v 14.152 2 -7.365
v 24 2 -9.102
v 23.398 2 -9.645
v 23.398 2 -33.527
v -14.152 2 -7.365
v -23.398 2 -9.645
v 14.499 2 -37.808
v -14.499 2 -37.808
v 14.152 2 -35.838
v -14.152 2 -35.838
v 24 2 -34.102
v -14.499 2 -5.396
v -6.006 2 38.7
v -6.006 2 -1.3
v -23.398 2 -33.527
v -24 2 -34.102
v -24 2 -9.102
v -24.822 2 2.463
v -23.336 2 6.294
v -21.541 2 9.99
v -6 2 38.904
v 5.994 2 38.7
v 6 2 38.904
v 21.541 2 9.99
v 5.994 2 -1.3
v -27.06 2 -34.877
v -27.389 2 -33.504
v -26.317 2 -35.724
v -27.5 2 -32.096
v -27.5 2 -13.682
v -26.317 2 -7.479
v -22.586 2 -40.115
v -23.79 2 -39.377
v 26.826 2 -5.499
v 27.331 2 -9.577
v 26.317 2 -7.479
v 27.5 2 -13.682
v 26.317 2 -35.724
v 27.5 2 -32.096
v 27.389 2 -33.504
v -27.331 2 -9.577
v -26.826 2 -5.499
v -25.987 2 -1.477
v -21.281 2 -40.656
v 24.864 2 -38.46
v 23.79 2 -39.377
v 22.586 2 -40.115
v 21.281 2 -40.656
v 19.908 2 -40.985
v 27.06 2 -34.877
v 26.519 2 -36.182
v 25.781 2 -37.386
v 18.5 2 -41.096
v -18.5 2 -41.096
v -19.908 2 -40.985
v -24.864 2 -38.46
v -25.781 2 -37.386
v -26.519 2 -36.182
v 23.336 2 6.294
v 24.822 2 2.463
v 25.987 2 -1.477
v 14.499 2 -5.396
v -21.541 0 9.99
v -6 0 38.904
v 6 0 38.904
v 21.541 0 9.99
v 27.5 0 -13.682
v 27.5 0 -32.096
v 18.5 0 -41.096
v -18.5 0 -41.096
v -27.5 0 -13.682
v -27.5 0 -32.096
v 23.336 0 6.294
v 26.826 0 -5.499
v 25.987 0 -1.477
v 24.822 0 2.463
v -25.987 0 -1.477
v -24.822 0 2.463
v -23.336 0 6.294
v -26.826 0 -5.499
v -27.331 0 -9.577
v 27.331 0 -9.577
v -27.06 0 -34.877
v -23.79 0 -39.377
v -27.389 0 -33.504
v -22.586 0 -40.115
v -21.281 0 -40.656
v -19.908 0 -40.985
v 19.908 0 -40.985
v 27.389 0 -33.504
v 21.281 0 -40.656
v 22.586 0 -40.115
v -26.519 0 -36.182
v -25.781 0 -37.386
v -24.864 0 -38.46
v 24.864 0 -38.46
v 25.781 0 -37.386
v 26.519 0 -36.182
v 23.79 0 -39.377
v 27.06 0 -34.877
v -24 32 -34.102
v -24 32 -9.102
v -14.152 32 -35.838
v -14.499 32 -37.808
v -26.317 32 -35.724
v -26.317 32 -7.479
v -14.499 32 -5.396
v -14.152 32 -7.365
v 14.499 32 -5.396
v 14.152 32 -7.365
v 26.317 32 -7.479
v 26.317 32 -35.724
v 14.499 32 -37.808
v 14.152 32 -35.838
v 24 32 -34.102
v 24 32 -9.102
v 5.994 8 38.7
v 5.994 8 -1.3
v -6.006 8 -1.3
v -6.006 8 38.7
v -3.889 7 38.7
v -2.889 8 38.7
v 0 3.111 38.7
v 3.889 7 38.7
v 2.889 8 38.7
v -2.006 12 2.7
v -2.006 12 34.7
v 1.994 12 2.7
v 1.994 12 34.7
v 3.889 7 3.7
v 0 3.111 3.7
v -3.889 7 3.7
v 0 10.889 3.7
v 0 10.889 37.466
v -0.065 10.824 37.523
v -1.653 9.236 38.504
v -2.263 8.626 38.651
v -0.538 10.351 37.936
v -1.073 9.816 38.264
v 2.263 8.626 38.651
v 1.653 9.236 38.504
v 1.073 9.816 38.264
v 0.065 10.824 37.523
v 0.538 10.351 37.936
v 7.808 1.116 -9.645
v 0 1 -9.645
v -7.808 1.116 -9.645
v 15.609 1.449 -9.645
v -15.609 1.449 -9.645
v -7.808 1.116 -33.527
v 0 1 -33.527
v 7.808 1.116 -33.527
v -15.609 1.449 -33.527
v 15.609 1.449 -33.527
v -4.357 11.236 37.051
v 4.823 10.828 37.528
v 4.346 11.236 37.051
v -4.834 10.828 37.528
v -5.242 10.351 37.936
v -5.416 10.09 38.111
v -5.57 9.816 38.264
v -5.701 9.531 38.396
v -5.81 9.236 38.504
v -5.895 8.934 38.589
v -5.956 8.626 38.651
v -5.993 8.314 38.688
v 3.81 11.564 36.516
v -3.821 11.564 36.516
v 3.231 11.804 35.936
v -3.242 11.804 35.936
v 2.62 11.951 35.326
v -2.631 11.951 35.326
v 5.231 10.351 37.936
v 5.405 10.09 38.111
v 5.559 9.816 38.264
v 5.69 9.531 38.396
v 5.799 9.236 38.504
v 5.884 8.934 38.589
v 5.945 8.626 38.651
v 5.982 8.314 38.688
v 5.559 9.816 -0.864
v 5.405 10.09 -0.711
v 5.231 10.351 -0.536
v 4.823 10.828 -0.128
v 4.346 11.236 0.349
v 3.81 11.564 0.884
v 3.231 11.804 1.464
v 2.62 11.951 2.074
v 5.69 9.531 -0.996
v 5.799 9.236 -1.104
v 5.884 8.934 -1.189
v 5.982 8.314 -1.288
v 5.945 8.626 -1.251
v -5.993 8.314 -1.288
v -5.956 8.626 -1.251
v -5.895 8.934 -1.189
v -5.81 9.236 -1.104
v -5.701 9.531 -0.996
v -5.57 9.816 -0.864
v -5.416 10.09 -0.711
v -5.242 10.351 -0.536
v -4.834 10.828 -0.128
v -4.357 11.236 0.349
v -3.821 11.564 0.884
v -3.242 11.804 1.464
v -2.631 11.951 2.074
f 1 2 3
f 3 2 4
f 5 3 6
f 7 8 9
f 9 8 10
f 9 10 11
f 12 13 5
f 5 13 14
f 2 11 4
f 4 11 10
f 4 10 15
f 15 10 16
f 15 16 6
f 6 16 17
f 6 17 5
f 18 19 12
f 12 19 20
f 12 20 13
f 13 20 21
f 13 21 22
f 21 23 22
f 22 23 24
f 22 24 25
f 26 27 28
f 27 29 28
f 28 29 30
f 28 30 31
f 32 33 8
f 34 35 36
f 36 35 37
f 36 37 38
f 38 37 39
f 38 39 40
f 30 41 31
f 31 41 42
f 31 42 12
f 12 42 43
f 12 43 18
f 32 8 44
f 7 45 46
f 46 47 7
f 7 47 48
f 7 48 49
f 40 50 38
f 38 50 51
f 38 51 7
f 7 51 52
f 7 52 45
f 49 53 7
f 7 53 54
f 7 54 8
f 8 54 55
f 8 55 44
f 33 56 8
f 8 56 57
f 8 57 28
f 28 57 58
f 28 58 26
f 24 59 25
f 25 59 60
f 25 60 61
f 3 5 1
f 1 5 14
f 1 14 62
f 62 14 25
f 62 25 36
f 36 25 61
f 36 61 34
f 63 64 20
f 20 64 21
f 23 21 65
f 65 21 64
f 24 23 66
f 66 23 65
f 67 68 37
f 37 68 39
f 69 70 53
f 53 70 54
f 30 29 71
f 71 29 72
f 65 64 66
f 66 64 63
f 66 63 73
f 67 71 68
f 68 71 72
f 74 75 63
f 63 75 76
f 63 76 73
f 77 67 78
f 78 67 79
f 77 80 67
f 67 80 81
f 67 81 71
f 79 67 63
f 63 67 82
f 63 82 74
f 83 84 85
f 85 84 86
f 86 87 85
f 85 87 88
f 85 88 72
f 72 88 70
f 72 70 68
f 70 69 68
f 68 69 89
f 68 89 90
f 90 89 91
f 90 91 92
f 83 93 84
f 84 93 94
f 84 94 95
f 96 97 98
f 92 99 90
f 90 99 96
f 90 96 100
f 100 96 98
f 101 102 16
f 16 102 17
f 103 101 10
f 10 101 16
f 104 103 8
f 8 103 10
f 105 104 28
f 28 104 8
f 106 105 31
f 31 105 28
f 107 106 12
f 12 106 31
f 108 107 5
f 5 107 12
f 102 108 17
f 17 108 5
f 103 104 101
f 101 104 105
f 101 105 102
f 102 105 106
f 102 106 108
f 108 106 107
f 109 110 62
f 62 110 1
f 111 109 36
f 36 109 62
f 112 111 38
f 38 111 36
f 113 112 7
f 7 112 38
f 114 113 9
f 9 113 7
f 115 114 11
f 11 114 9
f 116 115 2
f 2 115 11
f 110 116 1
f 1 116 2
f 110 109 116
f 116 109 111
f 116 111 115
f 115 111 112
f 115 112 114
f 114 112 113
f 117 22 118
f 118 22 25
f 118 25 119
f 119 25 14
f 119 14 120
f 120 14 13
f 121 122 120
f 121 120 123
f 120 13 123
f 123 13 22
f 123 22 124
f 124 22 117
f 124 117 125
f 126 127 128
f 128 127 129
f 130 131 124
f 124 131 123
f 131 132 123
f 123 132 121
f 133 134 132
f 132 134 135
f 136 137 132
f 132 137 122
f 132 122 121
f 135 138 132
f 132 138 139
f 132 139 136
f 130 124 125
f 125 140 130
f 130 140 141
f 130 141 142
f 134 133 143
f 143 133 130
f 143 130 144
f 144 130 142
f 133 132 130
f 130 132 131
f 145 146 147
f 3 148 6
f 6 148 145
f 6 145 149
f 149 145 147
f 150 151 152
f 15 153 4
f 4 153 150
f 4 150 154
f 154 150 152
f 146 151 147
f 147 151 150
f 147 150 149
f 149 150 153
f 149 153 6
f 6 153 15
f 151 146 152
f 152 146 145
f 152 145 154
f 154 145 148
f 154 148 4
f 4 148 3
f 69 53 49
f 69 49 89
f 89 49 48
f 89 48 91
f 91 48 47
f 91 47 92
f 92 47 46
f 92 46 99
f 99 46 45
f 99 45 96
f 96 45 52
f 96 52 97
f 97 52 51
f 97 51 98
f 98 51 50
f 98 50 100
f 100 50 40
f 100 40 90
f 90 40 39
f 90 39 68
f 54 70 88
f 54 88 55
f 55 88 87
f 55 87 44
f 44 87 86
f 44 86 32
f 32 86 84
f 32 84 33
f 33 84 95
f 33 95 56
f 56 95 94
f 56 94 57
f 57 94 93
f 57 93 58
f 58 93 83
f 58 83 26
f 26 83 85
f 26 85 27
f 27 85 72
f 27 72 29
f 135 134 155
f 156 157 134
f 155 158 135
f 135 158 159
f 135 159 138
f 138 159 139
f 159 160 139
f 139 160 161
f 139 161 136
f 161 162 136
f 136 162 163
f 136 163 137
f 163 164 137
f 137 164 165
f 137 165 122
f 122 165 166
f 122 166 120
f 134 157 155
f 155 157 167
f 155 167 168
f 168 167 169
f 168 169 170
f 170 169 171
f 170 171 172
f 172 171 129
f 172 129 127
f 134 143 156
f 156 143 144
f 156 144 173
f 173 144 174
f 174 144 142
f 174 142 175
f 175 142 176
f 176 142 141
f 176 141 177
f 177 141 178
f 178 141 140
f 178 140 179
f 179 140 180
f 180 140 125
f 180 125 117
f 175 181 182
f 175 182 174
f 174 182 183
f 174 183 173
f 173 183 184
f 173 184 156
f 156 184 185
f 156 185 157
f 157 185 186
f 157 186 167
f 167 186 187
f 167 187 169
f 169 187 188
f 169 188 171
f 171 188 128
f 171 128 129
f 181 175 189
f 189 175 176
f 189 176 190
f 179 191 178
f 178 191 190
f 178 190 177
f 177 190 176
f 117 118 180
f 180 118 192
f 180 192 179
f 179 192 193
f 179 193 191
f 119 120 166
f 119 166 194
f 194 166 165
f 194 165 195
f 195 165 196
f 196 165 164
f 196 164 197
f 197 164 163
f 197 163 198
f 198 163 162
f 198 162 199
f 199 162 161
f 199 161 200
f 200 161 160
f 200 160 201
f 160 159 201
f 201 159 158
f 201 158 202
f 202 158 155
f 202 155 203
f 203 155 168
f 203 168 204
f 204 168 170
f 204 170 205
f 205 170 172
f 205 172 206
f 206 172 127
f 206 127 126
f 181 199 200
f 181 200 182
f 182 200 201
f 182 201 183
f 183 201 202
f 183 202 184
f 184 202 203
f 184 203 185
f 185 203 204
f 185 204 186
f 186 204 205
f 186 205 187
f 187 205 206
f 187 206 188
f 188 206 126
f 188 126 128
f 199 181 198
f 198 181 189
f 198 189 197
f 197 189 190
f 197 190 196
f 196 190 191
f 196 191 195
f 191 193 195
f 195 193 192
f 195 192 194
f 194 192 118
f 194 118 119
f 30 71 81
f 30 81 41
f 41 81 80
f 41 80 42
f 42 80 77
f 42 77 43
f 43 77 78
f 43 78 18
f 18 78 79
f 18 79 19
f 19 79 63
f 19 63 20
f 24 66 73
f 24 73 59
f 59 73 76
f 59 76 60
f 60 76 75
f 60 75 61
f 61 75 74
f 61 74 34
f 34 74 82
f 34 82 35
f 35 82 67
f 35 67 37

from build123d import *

# Parameters (mm, degrees)
BOSS_EXTRUDE1_DEPTH = 2
BOSS_EXTRUDE2_DEPTH = 30
SKETCH3_W           = 12
SKETCH3_H           = 40
BOSS_EXTRUDE3_DEPTH = 10
CUT_EXTRUDE1_DEPTH  = 35
SKETCH6_W           = 46.796643592
SKETCH6_H           = 23.882016553
CUT_EXTRUDE2_DEPTH  = 1
FILLET1_R           = 280
FILLET2_R           = 9
FILLET3_R           = 4
FILLET4_R           = 50


with BuildPart() as part:
    # Sketch1 → Boss-Extrude1 (new body)
    with BuildSketch(Plane(origin=(0, 0, 0), x_dir=(1, 0, 0), z_dir=(0, 1, 0))):
        Polygon((-27.5, 1.096246938), (-6, -38.903753062), (6, -38.903753062), (27.5, 1.096246938), (27.5, 41.096246938), (-27.5, 41.096246938), align=None)
    extrude(amount=BOSS_EXTRUDE1_DEPTH)

    # Sketch2 → Boss-Extrude2 (add)
    with BuildSketch(Plane(origin=(0, 2, 0), x_dir=(1, 0, 0), z_dir=(0, 1, 0))):
        Polygon((-24, 9.101662984), (-24, 34.101662984), (-14.15192247, 35.838144761), (-14.499218825, 37.807760267), (-26.316911861, 35.723982135), (-26.316911861, 7.479343833), (-14.499218825, 5.395565701), (-14.15192247, 7.365181207), align=None)
        Polygon((14.15192247, 7.365181207), (14.499218825, 5.395565701), (26.316911861, 7.479343833), (26.316911861, 35.723982135), (14.499218825, 37.807760267), (14.15192247, 35.838144761), (24, 34.101662984), (24, 9.101662984), align=None)
    extrude(amount=BOSS_EXTRUDE2_DEPTH)

    # Sketch3 → Boss-Extrude3 (add)
    with BuildSketch(Plane(origin=(0, 2, 0), x_dir=(1, 0, 0), z_dir=(0, 1, 0))):
        with Locations((-0.005517933, -18.7)):
            Rectangle(SKETCH3_W, SKETCH3_H)
    extrude(amount=BOSS_EXTRUDE3_DEPTH)

    # Sketch4 → Cut-Extrude1 (cut)
    with BuildSketch(Plane.XY.offset(38.7)):
        Polygon((0, 3.110912703), (3.889087297, 7), (0, 10.889087297), (-3.889087297, 7), align=None)
    extrude(amount=-CUT_EXTRUDE1_DEPTH, mode=Mode.SUBTRACT)

    # Sketch6 → Cut-Extrude2 (cut)
    with BuildSketch(Plane(origin=(0, 2, 0), x_dir=(1, 0, 0), z_dir=(0, 1, 0))):
        with Locations((0, 21.585626422)):
            Rectangle(SKETCH6_W, SKETCH6_H)
    extrude(amount=-CUT_EXTRUDE2_DEPTH, mode=Mode.SUBTRACT)

    # Fillet1
    # the kernel refuses this fillet: 280 mm, written as the material it adds along each edge
    with BuildSketch(Plane(origin=(23.398321796, 1, -92.634586786), x_dir=(0, 1, 0), z_dir=(0, 0, 1))) as fillet1_piece_1_section:
        with BuildLine():
            CenterArc((280, 23.643180835), FILLET1_R, 180, 4.843819526)
            Line((0, 23.643180835), (0, 0))
            Line((0, 0), (1, 0))
        make_face()
    fillet1_piece_1 = extrude(amount=142.097920729, mode=Mode.PRIVATE)
    fillet1_piece_1 = split(fillet1_piece_1, bisect_by=Plane(origin=(14.446064127, 1.194161729, -5.386193094), z_dir=(-0.1736481776669284, 0, -0.9848077530122085)), keep=Keep.TOP, mode=Mode.PRIVATE)
    fillet1_piece_1 = split(fillet1_piece_1, bisect_by=Plane(origin=(14.451548954, 1.194161729, -37.816165751), z_dir=(-0.17364817766692828, 0, 0.9848077530122085)), keep=Keep.TOP, mode=Mode.PRIVATE)
    add(fillet1_piece_1)
    with BuildSketch(Plane(origin=(-23.398321796, 1, -9.644618145), x_dir=(0, 1, 0), z_dir=(0, 0, -1))) as fillet1_piece_2:
        with BuildLine():
            CenterArc((280, 23.643180835), FILLET1_R, 180, 4.843819526)
            Line((0, 23.643180835), (0, 0))
            Line((0, 0), (1, 0))
        make_face()
    extrude(amount=23.882016554)

    # Fillet2
    fillet2_edges = [part.edges().sort_by_distance(p)[0] for p in [
        (-27.5, 1, -41.096246938),
        (27.5, 1, -41.096246938),
    ]]
    fillet(fillet2_edges, radius=FILLET2_R)

    # Fillet3
    # the kernel refuses this fillet: 4 mm, written as the material it takes off along each edge
    with BuildSketch(Plane(origin=(5.994482067, 12, 48.7), x_dir=(0, -1, 0), z_dir=(0, 0, -1)), Plane(origin=(-6.005517933, 12, -11.3), x_dir=(0, -1, 0), z_dir=(0, 0, 1))) as fillet3_piece_1:
        with BuildLine():
            CenterArc((FILLET3_R, FILLET3_R), FILLET3_R, 180, 90)
            Line((0, FILLET3_R), (0, 0))
            Line((0, 0), (FILLET3_R, 0))
        make_face()
    extrude(amount=60, mode=Mode.SUBTRACT)
    with BuildSketch(Plane(origin=(15.994482067, 12, -1.3), x_dir=(0, -1, 0), z_dir=(-1, 0, 0)), Plane(origin=(-16.005517933, 12, 38.7), x_dir=(0, -1, 0), z_dir=(1, 0, 0))) as fillet3_piece_2:
        with BuildLine():
            CenterArc((FILLET3_R, FILLET3_R), FILLET3_R, 180, 90)
            Line((0, FILLET3_R), (0, 0))
            Line((0, 0), (FILLET3_R, 0))
        make_face()
    extrude(amount=32, mode=Mode.SUBTRACT)

    # Fillet4
    fillet4_edges = [part.edges().sort_by_distance(p)[0] for p in [
        (-27.5, 1, -1.096246938),
        (27.5, 1, -1.096246938),
    ]]
    fillet(fillet4_edges, radius=FILLET4_R)


solid = part.part
